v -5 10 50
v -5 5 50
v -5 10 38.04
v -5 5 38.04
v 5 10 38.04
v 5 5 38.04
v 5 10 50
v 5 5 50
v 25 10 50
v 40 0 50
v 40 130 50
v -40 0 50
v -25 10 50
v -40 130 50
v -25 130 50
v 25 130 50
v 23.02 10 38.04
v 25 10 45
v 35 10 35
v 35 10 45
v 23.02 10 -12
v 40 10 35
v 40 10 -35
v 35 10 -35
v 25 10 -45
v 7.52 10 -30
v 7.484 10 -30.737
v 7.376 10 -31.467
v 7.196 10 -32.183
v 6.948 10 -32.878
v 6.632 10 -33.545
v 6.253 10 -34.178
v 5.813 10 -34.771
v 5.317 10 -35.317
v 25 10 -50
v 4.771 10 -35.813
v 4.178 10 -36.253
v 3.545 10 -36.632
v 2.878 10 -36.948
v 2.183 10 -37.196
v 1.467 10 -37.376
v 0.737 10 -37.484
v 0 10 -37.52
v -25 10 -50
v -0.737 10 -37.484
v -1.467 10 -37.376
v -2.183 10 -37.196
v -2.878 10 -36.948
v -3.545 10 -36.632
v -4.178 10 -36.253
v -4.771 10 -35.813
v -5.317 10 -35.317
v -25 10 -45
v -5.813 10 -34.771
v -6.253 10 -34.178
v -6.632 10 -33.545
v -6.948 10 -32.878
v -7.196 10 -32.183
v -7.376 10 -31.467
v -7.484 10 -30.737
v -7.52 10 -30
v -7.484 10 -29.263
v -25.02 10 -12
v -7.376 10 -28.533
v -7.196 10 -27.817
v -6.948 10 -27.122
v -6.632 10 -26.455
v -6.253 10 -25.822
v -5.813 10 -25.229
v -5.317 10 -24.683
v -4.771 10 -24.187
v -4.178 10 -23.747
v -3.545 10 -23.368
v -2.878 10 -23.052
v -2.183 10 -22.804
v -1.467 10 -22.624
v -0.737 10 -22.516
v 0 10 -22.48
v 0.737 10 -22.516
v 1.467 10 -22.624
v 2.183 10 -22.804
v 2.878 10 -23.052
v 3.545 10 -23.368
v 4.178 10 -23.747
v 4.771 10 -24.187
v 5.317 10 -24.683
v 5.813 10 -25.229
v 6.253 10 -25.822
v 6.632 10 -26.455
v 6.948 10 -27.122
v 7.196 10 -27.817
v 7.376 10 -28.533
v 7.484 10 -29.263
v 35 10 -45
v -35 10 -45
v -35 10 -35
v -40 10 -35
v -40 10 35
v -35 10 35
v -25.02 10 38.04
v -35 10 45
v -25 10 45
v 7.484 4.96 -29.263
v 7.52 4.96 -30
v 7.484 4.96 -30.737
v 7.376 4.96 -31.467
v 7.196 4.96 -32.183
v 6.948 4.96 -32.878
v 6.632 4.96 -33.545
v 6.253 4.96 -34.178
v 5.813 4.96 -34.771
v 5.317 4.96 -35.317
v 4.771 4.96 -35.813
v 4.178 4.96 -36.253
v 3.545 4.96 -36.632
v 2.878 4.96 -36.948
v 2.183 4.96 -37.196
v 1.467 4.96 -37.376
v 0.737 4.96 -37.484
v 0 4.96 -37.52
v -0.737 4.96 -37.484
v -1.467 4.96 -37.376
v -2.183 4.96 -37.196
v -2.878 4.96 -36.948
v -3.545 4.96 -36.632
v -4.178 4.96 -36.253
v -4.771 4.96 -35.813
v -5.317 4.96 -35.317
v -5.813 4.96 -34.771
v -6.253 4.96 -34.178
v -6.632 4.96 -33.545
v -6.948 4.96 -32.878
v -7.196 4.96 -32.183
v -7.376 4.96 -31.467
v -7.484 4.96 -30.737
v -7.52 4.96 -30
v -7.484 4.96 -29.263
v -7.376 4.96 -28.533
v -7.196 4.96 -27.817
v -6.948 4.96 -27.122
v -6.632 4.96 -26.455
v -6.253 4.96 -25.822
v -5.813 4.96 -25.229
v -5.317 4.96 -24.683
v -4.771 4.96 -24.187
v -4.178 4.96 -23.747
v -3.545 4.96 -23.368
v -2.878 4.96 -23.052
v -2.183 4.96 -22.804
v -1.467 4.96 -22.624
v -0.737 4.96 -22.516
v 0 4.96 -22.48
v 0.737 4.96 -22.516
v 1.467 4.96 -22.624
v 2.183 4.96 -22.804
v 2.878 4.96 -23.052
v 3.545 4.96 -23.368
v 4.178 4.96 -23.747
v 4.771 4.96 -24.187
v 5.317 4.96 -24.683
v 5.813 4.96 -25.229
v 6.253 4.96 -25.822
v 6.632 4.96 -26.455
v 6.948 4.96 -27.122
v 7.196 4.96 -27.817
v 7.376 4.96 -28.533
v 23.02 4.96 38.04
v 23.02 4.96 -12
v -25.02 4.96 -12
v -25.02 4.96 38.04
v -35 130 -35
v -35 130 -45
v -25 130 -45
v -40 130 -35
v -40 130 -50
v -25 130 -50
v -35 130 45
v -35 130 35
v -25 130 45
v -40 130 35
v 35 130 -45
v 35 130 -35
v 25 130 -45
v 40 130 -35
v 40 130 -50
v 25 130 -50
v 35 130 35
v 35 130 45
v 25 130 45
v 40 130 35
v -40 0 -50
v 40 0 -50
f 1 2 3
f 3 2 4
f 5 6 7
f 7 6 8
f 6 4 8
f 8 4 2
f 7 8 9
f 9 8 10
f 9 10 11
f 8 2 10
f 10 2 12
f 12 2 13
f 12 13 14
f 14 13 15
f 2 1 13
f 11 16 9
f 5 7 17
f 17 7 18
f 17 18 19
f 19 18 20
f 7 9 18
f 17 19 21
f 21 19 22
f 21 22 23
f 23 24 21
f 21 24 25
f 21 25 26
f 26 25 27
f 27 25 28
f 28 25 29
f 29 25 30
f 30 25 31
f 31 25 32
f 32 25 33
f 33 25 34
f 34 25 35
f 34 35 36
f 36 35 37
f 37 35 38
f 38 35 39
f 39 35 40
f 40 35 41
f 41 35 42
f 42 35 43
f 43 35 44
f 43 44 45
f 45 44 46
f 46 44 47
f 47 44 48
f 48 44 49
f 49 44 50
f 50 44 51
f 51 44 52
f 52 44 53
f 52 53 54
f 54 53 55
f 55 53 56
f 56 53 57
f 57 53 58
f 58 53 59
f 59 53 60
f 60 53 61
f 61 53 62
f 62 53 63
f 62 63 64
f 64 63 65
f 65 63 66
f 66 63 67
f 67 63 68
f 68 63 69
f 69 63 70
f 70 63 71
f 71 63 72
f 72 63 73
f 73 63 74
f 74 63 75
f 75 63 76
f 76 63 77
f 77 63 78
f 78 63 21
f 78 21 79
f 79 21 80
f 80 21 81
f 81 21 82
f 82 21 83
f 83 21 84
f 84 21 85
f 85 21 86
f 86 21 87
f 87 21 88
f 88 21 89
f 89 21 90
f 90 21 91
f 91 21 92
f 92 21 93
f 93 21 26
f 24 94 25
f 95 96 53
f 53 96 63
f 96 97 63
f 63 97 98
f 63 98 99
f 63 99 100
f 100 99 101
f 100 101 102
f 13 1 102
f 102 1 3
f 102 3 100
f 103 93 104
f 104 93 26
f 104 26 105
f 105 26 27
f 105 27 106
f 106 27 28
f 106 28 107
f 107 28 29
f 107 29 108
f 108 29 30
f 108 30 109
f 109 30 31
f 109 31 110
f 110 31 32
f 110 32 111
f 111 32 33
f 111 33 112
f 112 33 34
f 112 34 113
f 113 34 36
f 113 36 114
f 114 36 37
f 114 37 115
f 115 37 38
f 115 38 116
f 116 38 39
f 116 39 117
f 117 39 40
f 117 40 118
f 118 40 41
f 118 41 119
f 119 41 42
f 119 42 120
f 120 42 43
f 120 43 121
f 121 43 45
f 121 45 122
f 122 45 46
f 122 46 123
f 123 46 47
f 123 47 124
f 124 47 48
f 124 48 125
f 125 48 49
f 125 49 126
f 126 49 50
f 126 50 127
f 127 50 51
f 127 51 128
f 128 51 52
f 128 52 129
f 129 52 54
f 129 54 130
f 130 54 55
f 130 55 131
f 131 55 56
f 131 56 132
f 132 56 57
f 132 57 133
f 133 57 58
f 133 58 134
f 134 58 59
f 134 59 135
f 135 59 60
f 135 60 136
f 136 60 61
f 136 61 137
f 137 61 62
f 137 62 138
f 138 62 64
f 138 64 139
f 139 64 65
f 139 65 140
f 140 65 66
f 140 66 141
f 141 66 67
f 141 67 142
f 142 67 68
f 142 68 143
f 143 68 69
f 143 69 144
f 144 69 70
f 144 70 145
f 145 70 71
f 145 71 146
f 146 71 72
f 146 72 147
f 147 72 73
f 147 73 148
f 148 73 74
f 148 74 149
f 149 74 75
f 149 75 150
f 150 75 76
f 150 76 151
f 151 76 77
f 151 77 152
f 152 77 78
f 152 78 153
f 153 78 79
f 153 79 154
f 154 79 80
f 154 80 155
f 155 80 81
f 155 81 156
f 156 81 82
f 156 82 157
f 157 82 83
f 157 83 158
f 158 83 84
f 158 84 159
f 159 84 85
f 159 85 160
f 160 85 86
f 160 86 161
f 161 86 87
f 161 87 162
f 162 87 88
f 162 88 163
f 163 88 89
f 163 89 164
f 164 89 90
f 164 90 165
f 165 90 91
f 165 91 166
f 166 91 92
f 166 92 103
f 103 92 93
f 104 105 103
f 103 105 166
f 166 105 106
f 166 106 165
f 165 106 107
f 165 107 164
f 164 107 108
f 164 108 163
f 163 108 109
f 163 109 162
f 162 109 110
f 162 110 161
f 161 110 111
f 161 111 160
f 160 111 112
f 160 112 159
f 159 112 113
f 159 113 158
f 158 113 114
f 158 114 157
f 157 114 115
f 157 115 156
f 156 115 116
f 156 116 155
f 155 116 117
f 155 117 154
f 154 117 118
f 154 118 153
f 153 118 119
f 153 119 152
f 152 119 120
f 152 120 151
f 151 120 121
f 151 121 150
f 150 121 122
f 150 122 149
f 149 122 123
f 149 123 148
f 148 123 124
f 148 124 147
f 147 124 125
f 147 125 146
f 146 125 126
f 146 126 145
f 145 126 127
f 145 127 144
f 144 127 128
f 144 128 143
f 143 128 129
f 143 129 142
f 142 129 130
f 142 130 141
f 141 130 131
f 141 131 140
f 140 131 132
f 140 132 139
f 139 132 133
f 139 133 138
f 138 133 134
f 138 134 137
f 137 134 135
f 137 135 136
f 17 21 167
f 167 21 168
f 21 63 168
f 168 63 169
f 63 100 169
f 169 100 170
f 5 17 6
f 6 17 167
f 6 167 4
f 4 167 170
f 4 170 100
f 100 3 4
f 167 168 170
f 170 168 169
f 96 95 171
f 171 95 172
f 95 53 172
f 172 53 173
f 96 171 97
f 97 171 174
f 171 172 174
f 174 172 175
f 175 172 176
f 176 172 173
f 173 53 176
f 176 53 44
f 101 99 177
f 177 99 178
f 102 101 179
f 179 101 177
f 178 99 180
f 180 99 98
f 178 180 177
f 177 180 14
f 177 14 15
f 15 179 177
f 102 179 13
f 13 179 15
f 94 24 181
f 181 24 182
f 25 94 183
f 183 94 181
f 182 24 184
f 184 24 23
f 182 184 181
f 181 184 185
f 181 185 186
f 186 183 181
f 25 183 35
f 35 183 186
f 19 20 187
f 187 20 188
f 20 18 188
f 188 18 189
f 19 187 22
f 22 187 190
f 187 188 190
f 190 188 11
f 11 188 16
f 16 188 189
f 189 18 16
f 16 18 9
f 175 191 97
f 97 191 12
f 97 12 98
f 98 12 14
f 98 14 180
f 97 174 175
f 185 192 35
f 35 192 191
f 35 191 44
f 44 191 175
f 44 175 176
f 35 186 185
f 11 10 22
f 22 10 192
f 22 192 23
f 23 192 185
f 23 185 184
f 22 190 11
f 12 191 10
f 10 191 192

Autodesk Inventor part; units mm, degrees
ref_plane "YZ Plane" through (0, 0, 0) normal (1, 0, 0) x (0, 1, 0)
ref_plane "XZ Plane" through (0, 0, 0) normal (0, 1, 0) x (-1, 0, 0)
ref_plane "XY Plane" through (0, 0, 0) normal (0, 0, 1) x (1, 0, 0)
sketch "Sketch1" plane through (0, 0, 0) normal (0, 1, 0) x (-1, 0, 0)
  line L0 (-40, 50) -> (40, 50)
  line L1 (40, 50) -> (40, -50)
  line L2 (40, -50) -> (-40, -50)
  line L3 (-40, -50) -> (-40, 50)
  line L4 (-40, 50) -> (40, -50) construction
  line L5 (40, 50) -> (-40, -50) construction
  point P0 (0, 0)
  dimension "d0" = 100
  dimension "d1" = 80
extrude "Extrusion1" add sketch "Sketch1" along normal blind 10
sketch "Sketch2" plane through (0, 10, 0) normal (0, 1, 0) x (1, 0, 0)
  line L0 (-40, -50) -> (40, -50) projected
  line L1 (40, -50) -> (25, -50)
  line L2 (25, -50) -> (25, -35)
  line L3 (25, -35) -> (40, -35)
  line L4 (40, -35) -> (40, -50)
  line L5 (25, -35) -> (35, -35)
  line L6 (35, -35) -> (35, -45)
  line L7 (35, -45) -> (25, -45)
  line L8 (25, -45) -> (25, -35)
  point P0 (0, 0)
  dimension "d4" = 15
  dimension "d5" = 15
  dimension "d6" = 10
  dimension "d7" = 10
extrude "Extrusion2" add sketch "Sketch2" along normal blind 120 contours L2 L7 L6 L3 L4 L0
mirror "Mirror1" about plane through (0, 0, 0) normal (0, 0, 1) of "Extrusion2"
mirror "Mirror2" about plane through (0, 0, 0) normal (1, 0, 0) of "Extrusion2", "Mirror1"
sketch "Sketch3" plane through (0, 10, 0) normal (0, 1, 0) x (1, 0, 0)
  line L0 (-25.02, -38.04) -> (23.02, -38.04)
  line L1 (23.02, -38.04) -> (23.02, 12)
  line L2 (23.02, 12) -> (-25.02, 12)
  line L3 (-25.02, 12) -> (-25.02, -38.04)
  line L4 (25, 50) -> (-25, 50) projected
  point P0 (0, 0)
  dimension "d10" = 48.04
  dimension "d11" = 50.04
  dimension "d13" = 25.02
  dimension "d14" = 38
extrude "Extrusion3" cut sketch "Sketch3" against normal blind 5.04
sketch "Sketch4" plane through (0, 10, 0) normal (0, 1, 0) x (1, 0, 0)
  circle A0 centre (0, 30) radius 7.52
  line L0 (25, 50) -> (-25, 50) projected
  line L1 (-40, 35) -> (-40, -35) projected
  point P0 (0, 0)
  dimension "d17" = 15.04
  dimension "d18" = 20
  dimension "d19" = 40
extrude "Extrusion4" cut sketch "Sketch4" against normal blind 5.04
sketch "Sketch6" plane through (-40, 0, 50) normal (0, 0, 1) x (1, 0, 0)
  line L0 (63.02, 10) -> (14.98, 10) projected
  line L1 (65, 10) -> (65, 130) projected
  line L2 (35, 5) -> (45, 5)
  line L3 (45, 5) -> (45, 15)
  line L4 (45, 15) -> (35, 15)
  line L5 (35, 15) -> (35, 5)
  line L6 (35, 5) -> (45, 15) construction
  line L7 (45, 5) -> (35, 15) construction
  point P0 (40, 0)
  dimension "d24" = 10
  dimension "d25" = 10
  dimension "d26" = 20
  dimension "d27" = 5
extrude "Extrusion5" cut sketch "Sketch6" against normal blind 15
